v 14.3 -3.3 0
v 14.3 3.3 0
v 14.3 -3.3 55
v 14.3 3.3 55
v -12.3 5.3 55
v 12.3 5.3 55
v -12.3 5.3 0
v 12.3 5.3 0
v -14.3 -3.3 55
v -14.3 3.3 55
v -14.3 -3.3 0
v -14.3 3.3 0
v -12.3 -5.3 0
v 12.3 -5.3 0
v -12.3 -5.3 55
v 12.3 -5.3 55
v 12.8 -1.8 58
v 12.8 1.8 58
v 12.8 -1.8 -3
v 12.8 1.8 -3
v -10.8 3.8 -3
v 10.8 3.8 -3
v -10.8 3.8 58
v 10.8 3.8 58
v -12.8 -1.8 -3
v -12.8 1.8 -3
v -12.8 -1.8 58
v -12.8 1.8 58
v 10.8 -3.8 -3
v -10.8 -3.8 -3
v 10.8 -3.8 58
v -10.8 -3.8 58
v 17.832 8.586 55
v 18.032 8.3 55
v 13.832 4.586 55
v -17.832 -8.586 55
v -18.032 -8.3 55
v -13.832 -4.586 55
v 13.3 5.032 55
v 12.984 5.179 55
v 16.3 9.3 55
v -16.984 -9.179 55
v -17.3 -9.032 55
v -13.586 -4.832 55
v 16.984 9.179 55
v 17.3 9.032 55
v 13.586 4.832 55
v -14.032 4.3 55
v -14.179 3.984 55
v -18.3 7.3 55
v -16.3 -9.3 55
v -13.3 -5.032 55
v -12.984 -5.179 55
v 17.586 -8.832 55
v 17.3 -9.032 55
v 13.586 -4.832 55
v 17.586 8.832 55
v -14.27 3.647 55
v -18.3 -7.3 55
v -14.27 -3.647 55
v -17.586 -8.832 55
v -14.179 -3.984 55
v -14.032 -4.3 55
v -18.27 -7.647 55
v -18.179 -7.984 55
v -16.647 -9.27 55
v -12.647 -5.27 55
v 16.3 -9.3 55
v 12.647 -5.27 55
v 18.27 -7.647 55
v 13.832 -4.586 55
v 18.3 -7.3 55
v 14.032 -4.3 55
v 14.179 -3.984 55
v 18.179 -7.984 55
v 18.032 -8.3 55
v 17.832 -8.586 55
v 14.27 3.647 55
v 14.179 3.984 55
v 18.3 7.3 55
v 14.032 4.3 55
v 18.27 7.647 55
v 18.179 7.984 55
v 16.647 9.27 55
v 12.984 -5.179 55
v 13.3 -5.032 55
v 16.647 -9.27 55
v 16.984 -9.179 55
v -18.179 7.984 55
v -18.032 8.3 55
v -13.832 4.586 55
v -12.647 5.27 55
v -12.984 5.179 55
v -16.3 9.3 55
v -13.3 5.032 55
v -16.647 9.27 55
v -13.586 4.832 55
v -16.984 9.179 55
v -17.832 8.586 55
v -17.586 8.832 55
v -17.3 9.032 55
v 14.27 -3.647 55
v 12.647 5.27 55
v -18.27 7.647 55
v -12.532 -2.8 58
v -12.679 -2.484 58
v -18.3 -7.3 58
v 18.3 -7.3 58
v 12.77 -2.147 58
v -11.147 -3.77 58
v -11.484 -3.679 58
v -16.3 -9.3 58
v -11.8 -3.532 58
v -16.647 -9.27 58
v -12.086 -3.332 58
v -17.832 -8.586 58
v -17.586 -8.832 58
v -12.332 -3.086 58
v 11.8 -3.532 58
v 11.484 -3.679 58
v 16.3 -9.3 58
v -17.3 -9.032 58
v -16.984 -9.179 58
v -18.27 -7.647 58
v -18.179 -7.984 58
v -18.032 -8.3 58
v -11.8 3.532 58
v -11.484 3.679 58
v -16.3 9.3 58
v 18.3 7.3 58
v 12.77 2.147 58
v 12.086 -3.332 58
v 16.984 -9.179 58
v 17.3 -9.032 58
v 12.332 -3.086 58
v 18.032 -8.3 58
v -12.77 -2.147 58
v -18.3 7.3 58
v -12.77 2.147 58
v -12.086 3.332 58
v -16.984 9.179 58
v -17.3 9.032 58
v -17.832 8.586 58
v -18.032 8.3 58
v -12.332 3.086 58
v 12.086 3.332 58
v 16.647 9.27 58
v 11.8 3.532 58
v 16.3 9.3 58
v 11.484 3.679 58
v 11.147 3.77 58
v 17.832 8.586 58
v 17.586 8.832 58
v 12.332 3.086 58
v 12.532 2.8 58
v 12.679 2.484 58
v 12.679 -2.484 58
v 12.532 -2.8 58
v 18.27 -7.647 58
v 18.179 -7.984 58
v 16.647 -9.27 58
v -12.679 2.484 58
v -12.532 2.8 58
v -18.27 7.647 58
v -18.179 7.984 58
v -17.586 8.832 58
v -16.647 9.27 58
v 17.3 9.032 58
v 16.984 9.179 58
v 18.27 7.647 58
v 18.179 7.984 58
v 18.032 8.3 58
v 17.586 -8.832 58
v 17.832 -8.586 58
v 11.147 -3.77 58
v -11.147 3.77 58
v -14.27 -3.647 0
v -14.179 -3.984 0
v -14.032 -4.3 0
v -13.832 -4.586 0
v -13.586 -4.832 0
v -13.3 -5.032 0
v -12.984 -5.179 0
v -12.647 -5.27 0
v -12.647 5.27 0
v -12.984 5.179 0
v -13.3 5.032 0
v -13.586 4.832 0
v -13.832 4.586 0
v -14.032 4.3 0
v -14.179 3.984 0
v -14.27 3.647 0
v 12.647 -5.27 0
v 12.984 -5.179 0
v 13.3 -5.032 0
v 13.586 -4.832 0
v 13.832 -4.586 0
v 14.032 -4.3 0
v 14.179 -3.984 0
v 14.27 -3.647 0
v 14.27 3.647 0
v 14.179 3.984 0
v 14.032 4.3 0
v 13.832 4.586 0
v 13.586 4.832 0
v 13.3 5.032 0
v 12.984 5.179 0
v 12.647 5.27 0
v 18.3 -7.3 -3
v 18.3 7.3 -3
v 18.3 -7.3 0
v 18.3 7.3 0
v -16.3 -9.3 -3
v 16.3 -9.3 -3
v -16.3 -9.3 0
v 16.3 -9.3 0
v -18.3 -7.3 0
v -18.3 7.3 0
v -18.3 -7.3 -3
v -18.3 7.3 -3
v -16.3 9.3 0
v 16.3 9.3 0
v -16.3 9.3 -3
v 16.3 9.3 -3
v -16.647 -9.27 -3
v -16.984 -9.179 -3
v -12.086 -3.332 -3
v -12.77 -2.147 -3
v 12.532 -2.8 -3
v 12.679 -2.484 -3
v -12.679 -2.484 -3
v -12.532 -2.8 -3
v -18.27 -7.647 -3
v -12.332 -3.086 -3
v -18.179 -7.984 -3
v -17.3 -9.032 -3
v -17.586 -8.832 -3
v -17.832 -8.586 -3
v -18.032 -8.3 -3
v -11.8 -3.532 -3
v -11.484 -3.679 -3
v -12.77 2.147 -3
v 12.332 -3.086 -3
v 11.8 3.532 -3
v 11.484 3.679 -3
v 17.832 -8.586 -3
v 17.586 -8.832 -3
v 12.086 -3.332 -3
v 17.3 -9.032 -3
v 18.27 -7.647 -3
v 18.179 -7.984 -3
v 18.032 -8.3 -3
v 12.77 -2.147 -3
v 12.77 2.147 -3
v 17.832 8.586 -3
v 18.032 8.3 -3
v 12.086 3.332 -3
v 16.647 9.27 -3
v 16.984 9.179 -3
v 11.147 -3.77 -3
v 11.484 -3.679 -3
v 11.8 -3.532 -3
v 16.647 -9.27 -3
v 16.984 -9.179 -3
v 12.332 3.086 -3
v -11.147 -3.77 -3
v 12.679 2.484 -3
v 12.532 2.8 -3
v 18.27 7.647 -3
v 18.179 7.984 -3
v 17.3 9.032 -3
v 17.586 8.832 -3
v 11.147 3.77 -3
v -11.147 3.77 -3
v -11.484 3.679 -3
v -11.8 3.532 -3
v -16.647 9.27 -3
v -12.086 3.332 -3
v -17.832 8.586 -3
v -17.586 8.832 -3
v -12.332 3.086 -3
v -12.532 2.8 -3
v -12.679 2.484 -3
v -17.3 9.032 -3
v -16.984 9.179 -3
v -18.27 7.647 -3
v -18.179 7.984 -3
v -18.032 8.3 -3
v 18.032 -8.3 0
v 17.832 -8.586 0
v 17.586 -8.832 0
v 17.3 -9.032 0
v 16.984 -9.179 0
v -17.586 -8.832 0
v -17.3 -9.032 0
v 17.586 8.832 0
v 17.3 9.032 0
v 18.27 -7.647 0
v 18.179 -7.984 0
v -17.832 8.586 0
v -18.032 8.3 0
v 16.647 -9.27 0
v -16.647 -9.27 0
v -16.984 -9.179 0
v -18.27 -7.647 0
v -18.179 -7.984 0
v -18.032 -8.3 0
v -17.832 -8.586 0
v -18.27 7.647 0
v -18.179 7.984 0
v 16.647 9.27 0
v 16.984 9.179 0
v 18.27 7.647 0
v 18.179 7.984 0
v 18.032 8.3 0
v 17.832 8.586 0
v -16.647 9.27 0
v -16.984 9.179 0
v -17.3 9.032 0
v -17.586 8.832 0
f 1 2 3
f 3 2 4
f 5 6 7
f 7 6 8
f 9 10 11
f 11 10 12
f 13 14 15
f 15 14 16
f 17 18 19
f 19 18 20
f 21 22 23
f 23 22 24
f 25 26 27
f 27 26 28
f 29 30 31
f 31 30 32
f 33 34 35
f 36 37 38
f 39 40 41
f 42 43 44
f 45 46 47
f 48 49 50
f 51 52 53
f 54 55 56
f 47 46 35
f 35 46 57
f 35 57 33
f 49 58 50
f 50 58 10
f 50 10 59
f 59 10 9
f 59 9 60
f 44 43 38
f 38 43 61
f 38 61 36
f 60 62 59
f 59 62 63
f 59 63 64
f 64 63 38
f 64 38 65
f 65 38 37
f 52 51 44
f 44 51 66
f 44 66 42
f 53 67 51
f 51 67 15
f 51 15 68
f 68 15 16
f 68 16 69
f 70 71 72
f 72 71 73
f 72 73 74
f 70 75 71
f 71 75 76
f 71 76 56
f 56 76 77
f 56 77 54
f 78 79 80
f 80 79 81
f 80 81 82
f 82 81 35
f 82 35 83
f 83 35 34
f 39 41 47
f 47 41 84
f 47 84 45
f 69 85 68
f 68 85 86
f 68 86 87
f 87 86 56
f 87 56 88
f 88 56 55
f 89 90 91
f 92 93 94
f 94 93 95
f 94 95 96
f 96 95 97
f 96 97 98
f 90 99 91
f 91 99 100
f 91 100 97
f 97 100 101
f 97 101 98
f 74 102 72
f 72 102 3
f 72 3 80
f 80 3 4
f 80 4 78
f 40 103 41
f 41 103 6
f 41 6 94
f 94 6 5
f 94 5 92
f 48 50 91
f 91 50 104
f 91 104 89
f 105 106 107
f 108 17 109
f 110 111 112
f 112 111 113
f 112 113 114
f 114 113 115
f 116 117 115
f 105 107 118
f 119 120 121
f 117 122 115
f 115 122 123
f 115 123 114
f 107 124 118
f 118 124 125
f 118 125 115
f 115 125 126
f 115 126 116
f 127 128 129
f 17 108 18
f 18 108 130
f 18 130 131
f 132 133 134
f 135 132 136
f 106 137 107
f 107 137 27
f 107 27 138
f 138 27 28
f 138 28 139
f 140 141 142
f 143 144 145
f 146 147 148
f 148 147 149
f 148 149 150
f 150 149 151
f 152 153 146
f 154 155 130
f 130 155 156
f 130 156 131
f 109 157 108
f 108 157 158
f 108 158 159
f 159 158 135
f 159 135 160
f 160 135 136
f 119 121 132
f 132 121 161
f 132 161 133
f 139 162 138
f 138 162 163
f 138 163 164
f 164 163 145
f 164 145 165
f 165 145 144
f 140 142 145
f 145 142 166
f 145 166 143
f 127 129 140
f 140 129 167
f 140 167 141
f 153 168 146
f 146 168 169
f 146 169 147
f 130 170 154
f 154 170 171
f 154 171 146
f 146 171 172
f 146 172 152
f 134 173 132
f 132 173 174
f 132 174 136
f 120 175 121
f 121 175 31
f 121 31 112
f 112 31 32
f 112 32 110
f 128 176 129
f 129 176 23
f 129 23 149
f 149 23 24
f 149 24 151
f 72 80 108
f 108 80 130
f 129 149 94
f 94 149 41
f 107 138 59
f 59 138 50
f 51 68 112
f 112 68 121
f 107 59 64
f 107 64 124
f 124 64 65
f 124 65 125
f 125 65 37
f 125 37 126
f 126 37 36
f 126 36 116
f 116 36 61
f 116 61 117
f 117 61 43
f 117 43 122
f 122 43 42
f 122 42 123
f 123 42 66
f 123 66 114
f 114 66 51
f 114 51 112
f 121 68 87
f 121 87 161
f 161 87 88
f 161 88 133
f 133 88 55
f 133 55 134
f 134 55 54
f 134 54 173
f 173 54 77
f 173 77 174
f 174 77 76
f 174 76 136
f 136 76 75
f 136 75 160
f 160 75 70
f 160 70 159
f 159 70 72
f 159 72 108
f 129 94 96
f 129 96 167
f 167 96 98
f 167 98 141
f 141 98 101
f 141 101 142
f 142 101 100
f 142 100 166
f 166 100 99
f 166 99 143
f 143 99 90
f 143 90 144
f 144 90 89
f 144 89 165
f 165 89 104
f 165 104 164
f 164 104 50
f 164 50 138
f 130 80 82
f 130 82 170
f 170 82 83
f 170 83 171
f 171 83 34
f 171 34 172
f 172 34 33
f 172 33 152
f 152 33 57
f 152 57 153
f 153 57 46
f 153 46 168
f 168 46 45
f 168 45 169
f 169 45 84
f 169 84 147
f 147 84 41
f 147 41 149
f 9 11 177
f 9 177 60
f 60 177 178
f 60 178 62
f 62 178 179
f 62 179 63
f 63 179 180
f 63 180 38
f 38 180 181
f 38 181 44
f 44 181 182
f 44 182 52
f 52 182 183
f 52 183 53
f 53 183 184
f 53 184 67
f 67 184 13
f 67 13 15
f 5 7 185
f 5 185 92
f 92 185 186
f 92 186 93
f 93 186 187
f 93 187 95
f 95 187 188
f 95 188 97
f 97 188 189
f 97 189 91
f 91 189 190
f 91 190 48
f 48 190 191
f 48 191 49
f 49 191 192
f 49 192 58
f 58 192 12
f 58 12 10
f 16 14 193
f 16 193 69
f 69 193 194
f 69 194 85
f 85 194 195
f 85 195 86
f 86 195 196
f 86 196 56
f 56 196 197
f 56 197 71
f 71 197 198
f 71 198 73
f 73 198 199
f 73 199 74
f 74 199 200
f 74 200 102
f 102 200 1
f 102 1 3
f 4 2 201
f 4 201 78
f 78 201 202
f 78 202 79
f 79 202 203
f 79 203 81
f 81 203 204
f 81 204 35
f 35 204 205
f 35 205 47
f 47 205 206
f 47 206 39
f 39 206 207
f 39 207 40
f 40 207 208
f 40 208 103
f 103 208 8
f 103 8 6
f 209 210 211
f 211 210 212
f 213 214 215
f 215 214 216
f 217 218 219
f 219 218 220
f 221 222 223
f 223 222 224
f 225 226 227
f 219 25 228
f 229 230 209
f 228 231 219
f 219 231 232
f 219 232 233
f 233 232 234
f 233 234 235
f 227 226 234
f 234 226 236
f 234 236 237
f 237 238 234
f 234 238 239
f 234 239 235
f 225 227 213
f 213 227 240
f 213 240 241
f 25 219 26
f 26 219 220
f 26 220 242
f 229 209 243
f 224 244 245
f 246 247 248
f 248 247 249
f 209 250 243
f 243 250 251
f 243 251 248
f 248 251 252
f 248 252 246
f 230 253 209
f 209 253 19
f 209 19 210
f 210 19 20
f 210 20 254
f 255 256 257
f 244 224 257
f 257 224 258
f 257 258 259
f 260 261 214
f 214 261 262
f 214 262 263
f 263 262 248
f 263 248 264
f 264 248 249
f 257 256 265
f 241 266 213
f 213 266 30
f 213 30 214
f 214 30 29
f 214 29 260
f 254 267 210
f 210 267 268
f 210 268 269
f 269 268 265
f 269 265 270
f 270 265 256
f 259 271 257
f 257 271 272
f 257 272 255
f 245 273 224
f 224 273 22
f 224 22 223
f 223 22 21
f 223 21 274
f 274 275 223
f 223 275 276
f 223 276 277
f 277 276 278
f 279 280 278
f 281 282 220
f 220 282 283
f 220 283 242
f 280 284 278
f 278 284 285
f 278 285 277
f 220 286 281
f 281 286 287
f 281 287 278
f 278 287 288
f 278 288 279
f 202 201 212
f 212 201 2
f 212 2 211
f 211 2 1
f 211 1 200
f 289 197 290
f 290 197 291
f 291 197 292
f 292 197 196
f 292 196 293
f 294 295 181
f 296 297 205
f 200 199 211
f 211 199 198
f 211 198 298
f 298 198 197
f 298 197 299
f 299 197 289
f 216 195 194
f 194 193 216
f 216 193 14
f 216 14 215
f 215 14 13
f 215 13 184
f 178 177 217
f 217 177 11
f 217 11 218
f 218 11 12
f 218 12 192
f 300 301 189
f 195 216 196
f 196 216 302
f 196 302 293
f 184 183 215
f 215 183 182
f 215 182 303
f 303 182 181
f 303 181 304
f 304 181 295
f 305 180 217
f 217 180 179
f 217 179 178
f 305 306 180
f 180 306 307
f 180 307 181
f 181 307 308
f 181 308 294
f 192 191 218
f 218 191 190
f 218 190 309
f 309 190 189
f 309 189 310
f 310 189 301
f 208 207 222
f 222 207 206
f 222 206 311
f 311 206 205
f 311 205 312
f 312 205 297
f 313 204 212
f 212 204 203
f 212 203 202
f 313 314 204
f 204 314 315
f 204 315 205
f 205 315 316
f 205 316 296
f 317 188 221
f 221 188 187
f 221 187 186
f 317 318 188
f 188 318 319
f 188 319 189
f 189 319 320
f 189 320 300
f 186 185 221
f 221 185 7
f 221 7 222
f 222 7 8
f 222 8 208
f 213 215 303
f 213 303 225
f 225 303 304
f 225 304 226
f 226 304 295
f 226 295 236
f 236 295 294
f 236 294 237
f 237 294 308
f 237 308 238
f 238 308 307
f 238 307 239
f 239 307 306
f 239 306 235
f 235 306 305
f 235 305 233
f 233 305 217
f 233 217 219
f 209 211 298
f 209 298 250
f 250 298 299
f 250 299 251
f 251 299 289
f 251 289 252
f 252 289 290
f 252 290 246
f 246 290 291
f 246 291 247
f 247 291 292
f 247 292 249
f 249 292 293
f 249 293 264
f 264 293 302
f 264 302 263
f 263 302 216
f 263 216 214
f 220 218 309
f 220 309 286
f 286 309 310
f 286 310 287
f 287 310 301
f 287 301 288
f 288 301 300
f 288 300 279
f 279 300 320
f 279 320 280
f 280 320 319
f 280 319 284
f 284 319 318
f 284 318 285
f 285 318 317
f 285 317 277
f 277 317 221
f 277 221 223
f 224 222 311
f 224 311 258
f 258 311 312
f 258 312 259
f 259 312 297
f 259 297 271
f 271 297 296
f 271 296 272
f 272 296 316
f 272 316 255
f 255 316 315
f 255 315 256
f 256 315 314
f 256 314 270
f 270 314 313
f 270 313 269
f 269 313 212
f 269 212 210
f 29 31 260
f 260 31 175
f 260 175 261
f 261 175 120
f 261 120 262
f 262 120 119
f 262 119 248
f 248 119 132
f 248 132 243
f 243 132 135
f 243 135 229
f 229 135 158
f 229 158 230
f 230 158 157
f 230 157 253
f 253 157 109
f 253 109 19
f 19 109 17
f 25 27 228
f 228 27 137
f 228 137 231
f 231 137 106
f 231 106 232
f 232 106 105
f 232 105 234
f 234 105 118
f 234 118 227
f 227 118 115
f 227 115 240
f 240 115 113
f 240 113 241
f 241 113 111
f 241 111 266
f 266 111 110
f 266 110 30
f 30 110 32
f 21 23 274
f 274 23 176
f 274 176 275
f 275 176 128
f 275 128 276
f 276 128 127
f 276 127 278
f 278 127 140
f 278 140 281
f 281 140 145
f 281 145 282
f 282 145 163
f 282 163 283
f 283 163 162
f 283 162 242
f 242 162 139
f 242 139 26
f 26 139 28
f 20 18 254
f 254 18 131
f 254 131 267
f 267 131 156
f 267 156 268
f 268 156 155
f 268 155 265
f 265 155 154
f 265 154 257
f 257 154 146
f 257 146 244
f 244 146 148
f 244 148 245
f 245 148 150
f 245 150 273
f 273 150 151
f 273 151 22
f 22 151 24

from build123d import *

# Parameters (mm, degrees)
SKETCH1_W            = 28.6
SKETCH1_H            = 10.6
SKETCH1_W_2          = 25.6
SKETCH1_H_2          = 7.6
BOSS_EXTRUDE1_DEPTH  = 55
SKETCH2_W            = 36.6
SKETCH2_H            = 18.6
SKETCH2_W_2          = 25.6
SKETCH2_H_2          = 7.6
BOSS_EXTRUDE3_DEPTH  = 3
FILLET2_R            = 2
FILLET1_R            = 2
FILLET2_OF_MIRROR2_R = 2
FILLET3_R            = 2


with BuildPart() as part:
    # Sketch1 → Boss-Extrude1 (new body)
    with BuildSketch(Plane.XY):
        Rectangle(SKETCH1_W, SKETCH1_H)
        Rectangle(SKETCH1_W_2, SKETCH1_H_2, mode=Mode.SUBTRACT)
    extrude(amount=BOSS_EXTRUDE1_DEPTH)

    # Sketch2 → Boss-Extrude3 (add)
    with BuildSketch(Plane.XY.offset(55)):
        Rectangle(SKETCH2_W, SKETCH2_H)
        Rectangle(SKETCH2_W_2, SKETCH2_H_2, mode=Mode.SUBTRACT)
    boss_extrude3 = extrude(amount=BOSS_EXTRUDE3_DEPTH)

    # Fillet2
    fillet2_edges = [part.edges().sort_by_distance(p)[0] for p in [
        (18.3, -9.3, 56.5),
        (18.3, 9.3, 56.5),
        (-18.3, 9.3, 56.5),
        (-18.3, -9.3, 56.5),
    ]]
    fillet(fillet2_edges, radius=FILLET2_R)

    # Fillet1
    fillet1_edges = [part.edges().sort_by_distance(p)[0] for p in [
        (14.3, -5.3, 27.5),
        (-14.3, -5.3, 27.5),
        (-14.3, 5.3, 27.5),
        (14.3, 5.3, 27.5),
    ]]
    fillet(fillet1_edges, radius=FILLET1_R)

    # Mirror2: Boss-Extrude3 across plane
    add(boss_extrude3.mirror(Plane(origin=(0, 0, 27.5), x_dir=(1, 0, 0), z_dir=(0, 0, -1))))

    # Fillet2 of Mirror2
    fillet2_of_mirror2_edges = [part.edges().sort_by_distance(p)[0] for p in [
        (18.3, -9.3, -1.5),
        (18.3, 9.3, -1.5),
        (-18.3, 9.3, -1.5),
        (-18.3, -9.3, -1.5),
    ]]
    fillet(fillet2_of_mirror2_edges, radius=FILLET2_OF_MIRROR2_R)

    # Fillet3
    fillet3_edges = [part.edges().sort_by_distance(p)[0] for p in [
        (12.8, -3.8, 27.5),
        (12.8, 3.8, 27.5),
        (-12.8, 3.8, 27.5),
        (-12.8, -3.8, 27.5),
    ]]
    fillet(fillet3_edges, radius=FILLET3_R)


solid = part.part
